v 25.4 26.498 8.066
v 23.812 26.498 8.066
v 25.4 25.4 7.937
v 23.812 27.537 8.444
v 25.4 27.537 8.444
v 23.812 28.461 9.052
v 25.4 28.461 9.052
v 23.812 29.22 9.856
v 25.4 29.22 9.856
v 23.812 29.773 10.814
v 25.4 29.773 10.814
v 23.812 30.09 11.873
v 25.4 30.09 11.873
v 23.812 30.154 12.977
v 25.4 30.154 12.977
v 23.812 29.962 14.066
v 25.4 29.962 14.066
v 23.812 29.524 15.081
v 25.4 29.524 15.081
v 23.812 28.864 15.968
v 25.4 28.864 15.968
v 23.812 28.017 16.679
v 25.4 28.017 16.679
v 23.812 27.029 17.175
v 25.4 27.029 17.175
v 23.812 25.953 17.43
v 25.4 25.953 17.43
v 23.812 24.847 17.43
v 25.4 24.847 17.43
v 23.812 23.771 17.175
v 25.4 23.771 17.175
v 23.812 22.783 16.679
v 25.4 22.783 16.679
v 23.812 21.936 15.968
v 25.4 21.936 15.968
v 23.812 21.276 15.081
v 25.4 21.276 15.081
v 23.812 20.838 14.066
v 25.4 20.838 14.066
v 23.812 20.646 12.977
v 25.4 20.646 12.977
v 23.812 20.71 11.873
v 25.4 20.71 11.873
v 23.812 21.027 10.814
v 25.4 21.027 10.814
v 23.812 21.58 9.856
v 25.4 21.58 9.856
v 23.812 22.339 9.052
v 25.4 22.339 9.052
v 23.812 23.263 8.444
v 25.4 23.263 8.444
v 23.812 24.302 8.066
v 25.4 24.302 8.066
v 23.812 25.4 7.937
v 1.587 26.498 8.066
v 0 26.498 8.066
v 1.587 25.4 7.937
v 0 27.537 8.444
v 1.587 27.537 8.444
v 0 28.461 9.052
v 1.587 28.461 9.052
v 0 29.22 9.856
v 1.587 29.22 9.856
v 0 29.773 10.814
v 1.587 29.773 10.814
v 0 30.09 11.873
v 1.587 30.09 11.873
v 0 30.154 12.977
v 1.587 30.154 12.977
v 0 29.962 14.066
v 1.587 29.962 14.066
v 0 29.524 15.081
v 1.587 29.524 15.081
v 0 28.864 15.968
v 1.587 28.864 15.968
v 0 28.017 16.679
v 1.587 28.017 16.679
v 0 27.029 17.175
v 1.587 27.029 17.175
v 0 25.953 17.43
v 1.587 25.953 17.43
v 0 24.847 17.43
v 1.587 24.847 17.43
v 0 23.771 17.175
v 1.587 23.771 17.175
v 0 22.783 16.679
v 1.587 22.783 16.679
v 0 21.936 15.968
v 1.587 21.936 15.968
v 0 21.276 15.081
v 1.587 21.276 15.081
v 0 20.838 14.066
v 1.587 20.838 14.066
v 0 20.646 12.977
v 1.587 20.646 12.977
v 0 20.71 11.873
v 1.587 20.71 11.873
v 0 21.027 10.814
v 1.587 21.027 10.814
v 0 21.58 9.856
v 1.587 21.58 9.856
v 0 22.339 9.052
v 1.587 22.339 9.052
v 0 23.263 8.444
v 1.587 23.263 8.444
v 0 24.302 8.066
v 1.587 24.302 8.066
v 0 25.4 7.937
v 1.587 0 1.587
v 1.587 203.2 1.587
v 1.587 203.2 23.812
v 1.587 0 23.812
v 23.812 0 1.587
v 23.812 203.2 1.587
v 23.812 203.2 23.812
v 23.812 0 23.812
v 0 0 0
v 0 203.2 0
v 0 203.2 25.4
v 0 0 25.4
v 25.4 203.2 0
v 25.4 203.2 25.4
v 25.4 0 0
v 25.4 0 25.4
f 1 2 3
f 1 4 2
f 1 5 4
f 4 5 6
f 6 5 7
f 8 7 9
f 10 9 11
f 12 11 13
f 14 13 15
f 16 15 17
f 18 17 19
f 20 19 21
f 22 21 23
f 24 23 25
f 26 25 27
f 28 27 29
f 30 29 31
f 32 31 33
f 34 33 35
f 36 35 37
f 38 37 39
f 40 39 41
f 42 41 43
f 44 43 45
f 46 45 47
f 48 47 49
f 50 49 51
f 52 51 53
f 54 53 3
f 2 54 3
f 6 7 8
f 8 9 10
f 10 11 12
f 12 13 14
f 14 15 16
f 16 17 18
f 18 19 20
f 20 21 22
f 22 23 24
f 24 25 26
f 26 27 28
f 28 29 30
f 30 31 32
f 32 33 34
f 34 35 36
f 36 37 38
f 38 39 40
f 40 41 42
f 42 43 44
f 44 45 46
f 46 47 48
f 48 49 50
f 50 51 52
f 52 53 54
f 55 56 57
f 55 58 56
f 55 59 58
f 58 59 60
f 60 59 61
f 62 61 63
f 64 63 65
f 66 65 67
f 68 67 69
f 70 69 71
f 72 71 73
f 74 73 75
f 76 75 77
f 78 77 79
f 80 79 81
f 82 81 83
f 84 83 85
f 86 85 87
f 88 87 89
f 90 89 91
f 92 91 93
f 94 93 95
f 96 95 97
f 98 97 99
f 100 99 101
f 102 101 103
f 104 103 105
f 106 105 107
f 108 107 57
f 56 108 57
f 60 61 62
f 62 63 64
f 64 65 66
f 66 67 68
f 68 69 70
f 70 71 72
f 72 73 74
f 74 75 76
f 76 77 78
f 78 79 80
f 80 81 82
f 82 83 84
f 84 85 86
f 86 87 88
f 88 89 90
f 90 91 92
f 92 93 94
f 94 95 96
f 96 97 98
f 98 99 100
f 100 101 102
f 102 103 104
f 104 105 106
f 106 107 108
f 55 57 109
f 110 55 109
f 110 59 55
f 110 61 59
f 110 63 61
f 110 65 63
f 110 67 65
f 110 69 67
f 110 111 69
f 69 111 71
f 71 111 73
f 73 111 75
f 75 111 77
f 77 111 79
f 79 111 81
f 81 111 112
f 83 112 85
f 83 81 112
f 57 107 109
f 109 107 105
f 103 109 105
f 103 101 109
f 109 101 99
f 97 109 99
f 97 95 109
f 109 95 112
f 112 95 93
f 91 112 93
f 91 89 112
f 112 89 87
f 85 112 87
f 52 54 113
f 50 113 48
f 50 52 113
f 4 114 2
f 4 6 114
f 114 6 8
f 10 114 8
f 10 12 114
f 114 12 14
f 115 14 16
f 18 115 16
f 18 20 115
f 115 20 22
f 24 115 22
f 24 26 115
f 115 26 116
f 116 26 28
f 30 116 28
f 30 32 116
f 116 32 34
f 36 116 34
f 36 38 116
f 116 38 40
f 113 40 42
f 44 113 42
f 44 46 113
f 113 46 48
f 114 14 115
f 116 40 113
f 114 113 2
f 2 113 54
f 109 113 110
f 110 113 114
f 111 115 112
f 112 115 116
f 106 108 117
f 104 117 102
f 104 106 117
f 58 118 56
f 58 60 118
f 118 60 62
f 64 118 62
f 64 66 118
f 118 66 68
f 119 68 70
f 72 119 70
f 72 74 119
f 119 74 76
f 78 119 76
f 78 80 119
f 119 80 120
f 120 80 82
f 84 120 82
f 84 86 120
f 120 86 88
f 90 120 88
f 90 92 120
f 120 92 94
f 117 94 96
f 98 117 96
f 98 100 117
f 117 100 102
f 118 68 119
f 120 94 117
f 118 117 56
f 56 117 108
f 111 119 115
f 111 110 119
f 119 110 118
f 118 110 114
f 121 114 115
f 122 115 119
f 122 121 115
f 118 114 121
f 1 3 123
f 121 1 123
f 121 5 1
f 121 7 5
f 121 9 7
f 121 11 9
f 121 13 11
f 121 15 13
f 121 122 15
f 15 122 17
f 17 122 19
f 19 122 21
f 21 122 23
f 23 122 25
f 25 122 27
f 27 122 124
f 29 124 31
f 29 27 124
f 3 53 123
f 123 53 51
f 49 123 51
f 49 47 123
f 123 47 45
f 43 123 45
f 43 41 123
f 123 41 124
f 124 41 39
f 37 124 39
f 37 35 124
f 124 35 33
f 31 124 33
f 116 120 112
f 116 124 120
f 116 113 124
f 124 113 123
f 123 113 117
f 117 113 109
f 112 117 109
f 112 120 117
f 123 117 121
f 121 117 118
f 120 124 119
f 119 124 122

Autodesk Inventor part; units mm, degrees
ref_plane "YZ Plane" through (0, 0, 0) normal (1, 0, 0) x (0, 1, 0)
ref_plane "XZ Plane" through (0, 0, 0) normal (0, 1, 0) x (-1, 0, 0)
ref_plane "XY Plane" through (0, 0, 0) normal (0, 0, 1) x (1, 0, 0)
sketch "Sketch1" plane through (0, 0, 0) normal (0, 0, 1) x (1, 0, 0)
  line L0 (0, 0) -> (25.4, 0)
  line L1 (25.4, 0) -> (25.4, 203.2)
  line L2 (25.4, 203.2) -> (0, 203.2)
  line L3 (0, 203.2) -> (0, 0)
  dimension "d0" = 203.2
  dimension "d1" = 25.4
extrude "Extrusion1" add sketch "Sketch1" along normal blind 25.4
shell "Shell1" thickness 1.5875 removed faces 2 at (16.9333, 203.2, 8.4667) at (8.4667, 0, 8.4667)
sketch "Sketch2" plane through (25.4, 0, 0) normal (1, 0, 0) x (0, 0, -1)
  line L0 (-25.4, 203.2) -> (-25.4, 0) projected
  line L1 (0, 0) -> (-25.4, 0) projected
  circle A0 centre (-12.7, 25.4) radius 4.7625
  dimension "d5" = 25.4
  dimension "d6" = 12.7
  dimension "d7" = 9.525
extrude "Extrusion2" cut sketch "Sketch2" against normal through all
properties part number "VerticalConveyorSupport" material "Aluminum-6061"
